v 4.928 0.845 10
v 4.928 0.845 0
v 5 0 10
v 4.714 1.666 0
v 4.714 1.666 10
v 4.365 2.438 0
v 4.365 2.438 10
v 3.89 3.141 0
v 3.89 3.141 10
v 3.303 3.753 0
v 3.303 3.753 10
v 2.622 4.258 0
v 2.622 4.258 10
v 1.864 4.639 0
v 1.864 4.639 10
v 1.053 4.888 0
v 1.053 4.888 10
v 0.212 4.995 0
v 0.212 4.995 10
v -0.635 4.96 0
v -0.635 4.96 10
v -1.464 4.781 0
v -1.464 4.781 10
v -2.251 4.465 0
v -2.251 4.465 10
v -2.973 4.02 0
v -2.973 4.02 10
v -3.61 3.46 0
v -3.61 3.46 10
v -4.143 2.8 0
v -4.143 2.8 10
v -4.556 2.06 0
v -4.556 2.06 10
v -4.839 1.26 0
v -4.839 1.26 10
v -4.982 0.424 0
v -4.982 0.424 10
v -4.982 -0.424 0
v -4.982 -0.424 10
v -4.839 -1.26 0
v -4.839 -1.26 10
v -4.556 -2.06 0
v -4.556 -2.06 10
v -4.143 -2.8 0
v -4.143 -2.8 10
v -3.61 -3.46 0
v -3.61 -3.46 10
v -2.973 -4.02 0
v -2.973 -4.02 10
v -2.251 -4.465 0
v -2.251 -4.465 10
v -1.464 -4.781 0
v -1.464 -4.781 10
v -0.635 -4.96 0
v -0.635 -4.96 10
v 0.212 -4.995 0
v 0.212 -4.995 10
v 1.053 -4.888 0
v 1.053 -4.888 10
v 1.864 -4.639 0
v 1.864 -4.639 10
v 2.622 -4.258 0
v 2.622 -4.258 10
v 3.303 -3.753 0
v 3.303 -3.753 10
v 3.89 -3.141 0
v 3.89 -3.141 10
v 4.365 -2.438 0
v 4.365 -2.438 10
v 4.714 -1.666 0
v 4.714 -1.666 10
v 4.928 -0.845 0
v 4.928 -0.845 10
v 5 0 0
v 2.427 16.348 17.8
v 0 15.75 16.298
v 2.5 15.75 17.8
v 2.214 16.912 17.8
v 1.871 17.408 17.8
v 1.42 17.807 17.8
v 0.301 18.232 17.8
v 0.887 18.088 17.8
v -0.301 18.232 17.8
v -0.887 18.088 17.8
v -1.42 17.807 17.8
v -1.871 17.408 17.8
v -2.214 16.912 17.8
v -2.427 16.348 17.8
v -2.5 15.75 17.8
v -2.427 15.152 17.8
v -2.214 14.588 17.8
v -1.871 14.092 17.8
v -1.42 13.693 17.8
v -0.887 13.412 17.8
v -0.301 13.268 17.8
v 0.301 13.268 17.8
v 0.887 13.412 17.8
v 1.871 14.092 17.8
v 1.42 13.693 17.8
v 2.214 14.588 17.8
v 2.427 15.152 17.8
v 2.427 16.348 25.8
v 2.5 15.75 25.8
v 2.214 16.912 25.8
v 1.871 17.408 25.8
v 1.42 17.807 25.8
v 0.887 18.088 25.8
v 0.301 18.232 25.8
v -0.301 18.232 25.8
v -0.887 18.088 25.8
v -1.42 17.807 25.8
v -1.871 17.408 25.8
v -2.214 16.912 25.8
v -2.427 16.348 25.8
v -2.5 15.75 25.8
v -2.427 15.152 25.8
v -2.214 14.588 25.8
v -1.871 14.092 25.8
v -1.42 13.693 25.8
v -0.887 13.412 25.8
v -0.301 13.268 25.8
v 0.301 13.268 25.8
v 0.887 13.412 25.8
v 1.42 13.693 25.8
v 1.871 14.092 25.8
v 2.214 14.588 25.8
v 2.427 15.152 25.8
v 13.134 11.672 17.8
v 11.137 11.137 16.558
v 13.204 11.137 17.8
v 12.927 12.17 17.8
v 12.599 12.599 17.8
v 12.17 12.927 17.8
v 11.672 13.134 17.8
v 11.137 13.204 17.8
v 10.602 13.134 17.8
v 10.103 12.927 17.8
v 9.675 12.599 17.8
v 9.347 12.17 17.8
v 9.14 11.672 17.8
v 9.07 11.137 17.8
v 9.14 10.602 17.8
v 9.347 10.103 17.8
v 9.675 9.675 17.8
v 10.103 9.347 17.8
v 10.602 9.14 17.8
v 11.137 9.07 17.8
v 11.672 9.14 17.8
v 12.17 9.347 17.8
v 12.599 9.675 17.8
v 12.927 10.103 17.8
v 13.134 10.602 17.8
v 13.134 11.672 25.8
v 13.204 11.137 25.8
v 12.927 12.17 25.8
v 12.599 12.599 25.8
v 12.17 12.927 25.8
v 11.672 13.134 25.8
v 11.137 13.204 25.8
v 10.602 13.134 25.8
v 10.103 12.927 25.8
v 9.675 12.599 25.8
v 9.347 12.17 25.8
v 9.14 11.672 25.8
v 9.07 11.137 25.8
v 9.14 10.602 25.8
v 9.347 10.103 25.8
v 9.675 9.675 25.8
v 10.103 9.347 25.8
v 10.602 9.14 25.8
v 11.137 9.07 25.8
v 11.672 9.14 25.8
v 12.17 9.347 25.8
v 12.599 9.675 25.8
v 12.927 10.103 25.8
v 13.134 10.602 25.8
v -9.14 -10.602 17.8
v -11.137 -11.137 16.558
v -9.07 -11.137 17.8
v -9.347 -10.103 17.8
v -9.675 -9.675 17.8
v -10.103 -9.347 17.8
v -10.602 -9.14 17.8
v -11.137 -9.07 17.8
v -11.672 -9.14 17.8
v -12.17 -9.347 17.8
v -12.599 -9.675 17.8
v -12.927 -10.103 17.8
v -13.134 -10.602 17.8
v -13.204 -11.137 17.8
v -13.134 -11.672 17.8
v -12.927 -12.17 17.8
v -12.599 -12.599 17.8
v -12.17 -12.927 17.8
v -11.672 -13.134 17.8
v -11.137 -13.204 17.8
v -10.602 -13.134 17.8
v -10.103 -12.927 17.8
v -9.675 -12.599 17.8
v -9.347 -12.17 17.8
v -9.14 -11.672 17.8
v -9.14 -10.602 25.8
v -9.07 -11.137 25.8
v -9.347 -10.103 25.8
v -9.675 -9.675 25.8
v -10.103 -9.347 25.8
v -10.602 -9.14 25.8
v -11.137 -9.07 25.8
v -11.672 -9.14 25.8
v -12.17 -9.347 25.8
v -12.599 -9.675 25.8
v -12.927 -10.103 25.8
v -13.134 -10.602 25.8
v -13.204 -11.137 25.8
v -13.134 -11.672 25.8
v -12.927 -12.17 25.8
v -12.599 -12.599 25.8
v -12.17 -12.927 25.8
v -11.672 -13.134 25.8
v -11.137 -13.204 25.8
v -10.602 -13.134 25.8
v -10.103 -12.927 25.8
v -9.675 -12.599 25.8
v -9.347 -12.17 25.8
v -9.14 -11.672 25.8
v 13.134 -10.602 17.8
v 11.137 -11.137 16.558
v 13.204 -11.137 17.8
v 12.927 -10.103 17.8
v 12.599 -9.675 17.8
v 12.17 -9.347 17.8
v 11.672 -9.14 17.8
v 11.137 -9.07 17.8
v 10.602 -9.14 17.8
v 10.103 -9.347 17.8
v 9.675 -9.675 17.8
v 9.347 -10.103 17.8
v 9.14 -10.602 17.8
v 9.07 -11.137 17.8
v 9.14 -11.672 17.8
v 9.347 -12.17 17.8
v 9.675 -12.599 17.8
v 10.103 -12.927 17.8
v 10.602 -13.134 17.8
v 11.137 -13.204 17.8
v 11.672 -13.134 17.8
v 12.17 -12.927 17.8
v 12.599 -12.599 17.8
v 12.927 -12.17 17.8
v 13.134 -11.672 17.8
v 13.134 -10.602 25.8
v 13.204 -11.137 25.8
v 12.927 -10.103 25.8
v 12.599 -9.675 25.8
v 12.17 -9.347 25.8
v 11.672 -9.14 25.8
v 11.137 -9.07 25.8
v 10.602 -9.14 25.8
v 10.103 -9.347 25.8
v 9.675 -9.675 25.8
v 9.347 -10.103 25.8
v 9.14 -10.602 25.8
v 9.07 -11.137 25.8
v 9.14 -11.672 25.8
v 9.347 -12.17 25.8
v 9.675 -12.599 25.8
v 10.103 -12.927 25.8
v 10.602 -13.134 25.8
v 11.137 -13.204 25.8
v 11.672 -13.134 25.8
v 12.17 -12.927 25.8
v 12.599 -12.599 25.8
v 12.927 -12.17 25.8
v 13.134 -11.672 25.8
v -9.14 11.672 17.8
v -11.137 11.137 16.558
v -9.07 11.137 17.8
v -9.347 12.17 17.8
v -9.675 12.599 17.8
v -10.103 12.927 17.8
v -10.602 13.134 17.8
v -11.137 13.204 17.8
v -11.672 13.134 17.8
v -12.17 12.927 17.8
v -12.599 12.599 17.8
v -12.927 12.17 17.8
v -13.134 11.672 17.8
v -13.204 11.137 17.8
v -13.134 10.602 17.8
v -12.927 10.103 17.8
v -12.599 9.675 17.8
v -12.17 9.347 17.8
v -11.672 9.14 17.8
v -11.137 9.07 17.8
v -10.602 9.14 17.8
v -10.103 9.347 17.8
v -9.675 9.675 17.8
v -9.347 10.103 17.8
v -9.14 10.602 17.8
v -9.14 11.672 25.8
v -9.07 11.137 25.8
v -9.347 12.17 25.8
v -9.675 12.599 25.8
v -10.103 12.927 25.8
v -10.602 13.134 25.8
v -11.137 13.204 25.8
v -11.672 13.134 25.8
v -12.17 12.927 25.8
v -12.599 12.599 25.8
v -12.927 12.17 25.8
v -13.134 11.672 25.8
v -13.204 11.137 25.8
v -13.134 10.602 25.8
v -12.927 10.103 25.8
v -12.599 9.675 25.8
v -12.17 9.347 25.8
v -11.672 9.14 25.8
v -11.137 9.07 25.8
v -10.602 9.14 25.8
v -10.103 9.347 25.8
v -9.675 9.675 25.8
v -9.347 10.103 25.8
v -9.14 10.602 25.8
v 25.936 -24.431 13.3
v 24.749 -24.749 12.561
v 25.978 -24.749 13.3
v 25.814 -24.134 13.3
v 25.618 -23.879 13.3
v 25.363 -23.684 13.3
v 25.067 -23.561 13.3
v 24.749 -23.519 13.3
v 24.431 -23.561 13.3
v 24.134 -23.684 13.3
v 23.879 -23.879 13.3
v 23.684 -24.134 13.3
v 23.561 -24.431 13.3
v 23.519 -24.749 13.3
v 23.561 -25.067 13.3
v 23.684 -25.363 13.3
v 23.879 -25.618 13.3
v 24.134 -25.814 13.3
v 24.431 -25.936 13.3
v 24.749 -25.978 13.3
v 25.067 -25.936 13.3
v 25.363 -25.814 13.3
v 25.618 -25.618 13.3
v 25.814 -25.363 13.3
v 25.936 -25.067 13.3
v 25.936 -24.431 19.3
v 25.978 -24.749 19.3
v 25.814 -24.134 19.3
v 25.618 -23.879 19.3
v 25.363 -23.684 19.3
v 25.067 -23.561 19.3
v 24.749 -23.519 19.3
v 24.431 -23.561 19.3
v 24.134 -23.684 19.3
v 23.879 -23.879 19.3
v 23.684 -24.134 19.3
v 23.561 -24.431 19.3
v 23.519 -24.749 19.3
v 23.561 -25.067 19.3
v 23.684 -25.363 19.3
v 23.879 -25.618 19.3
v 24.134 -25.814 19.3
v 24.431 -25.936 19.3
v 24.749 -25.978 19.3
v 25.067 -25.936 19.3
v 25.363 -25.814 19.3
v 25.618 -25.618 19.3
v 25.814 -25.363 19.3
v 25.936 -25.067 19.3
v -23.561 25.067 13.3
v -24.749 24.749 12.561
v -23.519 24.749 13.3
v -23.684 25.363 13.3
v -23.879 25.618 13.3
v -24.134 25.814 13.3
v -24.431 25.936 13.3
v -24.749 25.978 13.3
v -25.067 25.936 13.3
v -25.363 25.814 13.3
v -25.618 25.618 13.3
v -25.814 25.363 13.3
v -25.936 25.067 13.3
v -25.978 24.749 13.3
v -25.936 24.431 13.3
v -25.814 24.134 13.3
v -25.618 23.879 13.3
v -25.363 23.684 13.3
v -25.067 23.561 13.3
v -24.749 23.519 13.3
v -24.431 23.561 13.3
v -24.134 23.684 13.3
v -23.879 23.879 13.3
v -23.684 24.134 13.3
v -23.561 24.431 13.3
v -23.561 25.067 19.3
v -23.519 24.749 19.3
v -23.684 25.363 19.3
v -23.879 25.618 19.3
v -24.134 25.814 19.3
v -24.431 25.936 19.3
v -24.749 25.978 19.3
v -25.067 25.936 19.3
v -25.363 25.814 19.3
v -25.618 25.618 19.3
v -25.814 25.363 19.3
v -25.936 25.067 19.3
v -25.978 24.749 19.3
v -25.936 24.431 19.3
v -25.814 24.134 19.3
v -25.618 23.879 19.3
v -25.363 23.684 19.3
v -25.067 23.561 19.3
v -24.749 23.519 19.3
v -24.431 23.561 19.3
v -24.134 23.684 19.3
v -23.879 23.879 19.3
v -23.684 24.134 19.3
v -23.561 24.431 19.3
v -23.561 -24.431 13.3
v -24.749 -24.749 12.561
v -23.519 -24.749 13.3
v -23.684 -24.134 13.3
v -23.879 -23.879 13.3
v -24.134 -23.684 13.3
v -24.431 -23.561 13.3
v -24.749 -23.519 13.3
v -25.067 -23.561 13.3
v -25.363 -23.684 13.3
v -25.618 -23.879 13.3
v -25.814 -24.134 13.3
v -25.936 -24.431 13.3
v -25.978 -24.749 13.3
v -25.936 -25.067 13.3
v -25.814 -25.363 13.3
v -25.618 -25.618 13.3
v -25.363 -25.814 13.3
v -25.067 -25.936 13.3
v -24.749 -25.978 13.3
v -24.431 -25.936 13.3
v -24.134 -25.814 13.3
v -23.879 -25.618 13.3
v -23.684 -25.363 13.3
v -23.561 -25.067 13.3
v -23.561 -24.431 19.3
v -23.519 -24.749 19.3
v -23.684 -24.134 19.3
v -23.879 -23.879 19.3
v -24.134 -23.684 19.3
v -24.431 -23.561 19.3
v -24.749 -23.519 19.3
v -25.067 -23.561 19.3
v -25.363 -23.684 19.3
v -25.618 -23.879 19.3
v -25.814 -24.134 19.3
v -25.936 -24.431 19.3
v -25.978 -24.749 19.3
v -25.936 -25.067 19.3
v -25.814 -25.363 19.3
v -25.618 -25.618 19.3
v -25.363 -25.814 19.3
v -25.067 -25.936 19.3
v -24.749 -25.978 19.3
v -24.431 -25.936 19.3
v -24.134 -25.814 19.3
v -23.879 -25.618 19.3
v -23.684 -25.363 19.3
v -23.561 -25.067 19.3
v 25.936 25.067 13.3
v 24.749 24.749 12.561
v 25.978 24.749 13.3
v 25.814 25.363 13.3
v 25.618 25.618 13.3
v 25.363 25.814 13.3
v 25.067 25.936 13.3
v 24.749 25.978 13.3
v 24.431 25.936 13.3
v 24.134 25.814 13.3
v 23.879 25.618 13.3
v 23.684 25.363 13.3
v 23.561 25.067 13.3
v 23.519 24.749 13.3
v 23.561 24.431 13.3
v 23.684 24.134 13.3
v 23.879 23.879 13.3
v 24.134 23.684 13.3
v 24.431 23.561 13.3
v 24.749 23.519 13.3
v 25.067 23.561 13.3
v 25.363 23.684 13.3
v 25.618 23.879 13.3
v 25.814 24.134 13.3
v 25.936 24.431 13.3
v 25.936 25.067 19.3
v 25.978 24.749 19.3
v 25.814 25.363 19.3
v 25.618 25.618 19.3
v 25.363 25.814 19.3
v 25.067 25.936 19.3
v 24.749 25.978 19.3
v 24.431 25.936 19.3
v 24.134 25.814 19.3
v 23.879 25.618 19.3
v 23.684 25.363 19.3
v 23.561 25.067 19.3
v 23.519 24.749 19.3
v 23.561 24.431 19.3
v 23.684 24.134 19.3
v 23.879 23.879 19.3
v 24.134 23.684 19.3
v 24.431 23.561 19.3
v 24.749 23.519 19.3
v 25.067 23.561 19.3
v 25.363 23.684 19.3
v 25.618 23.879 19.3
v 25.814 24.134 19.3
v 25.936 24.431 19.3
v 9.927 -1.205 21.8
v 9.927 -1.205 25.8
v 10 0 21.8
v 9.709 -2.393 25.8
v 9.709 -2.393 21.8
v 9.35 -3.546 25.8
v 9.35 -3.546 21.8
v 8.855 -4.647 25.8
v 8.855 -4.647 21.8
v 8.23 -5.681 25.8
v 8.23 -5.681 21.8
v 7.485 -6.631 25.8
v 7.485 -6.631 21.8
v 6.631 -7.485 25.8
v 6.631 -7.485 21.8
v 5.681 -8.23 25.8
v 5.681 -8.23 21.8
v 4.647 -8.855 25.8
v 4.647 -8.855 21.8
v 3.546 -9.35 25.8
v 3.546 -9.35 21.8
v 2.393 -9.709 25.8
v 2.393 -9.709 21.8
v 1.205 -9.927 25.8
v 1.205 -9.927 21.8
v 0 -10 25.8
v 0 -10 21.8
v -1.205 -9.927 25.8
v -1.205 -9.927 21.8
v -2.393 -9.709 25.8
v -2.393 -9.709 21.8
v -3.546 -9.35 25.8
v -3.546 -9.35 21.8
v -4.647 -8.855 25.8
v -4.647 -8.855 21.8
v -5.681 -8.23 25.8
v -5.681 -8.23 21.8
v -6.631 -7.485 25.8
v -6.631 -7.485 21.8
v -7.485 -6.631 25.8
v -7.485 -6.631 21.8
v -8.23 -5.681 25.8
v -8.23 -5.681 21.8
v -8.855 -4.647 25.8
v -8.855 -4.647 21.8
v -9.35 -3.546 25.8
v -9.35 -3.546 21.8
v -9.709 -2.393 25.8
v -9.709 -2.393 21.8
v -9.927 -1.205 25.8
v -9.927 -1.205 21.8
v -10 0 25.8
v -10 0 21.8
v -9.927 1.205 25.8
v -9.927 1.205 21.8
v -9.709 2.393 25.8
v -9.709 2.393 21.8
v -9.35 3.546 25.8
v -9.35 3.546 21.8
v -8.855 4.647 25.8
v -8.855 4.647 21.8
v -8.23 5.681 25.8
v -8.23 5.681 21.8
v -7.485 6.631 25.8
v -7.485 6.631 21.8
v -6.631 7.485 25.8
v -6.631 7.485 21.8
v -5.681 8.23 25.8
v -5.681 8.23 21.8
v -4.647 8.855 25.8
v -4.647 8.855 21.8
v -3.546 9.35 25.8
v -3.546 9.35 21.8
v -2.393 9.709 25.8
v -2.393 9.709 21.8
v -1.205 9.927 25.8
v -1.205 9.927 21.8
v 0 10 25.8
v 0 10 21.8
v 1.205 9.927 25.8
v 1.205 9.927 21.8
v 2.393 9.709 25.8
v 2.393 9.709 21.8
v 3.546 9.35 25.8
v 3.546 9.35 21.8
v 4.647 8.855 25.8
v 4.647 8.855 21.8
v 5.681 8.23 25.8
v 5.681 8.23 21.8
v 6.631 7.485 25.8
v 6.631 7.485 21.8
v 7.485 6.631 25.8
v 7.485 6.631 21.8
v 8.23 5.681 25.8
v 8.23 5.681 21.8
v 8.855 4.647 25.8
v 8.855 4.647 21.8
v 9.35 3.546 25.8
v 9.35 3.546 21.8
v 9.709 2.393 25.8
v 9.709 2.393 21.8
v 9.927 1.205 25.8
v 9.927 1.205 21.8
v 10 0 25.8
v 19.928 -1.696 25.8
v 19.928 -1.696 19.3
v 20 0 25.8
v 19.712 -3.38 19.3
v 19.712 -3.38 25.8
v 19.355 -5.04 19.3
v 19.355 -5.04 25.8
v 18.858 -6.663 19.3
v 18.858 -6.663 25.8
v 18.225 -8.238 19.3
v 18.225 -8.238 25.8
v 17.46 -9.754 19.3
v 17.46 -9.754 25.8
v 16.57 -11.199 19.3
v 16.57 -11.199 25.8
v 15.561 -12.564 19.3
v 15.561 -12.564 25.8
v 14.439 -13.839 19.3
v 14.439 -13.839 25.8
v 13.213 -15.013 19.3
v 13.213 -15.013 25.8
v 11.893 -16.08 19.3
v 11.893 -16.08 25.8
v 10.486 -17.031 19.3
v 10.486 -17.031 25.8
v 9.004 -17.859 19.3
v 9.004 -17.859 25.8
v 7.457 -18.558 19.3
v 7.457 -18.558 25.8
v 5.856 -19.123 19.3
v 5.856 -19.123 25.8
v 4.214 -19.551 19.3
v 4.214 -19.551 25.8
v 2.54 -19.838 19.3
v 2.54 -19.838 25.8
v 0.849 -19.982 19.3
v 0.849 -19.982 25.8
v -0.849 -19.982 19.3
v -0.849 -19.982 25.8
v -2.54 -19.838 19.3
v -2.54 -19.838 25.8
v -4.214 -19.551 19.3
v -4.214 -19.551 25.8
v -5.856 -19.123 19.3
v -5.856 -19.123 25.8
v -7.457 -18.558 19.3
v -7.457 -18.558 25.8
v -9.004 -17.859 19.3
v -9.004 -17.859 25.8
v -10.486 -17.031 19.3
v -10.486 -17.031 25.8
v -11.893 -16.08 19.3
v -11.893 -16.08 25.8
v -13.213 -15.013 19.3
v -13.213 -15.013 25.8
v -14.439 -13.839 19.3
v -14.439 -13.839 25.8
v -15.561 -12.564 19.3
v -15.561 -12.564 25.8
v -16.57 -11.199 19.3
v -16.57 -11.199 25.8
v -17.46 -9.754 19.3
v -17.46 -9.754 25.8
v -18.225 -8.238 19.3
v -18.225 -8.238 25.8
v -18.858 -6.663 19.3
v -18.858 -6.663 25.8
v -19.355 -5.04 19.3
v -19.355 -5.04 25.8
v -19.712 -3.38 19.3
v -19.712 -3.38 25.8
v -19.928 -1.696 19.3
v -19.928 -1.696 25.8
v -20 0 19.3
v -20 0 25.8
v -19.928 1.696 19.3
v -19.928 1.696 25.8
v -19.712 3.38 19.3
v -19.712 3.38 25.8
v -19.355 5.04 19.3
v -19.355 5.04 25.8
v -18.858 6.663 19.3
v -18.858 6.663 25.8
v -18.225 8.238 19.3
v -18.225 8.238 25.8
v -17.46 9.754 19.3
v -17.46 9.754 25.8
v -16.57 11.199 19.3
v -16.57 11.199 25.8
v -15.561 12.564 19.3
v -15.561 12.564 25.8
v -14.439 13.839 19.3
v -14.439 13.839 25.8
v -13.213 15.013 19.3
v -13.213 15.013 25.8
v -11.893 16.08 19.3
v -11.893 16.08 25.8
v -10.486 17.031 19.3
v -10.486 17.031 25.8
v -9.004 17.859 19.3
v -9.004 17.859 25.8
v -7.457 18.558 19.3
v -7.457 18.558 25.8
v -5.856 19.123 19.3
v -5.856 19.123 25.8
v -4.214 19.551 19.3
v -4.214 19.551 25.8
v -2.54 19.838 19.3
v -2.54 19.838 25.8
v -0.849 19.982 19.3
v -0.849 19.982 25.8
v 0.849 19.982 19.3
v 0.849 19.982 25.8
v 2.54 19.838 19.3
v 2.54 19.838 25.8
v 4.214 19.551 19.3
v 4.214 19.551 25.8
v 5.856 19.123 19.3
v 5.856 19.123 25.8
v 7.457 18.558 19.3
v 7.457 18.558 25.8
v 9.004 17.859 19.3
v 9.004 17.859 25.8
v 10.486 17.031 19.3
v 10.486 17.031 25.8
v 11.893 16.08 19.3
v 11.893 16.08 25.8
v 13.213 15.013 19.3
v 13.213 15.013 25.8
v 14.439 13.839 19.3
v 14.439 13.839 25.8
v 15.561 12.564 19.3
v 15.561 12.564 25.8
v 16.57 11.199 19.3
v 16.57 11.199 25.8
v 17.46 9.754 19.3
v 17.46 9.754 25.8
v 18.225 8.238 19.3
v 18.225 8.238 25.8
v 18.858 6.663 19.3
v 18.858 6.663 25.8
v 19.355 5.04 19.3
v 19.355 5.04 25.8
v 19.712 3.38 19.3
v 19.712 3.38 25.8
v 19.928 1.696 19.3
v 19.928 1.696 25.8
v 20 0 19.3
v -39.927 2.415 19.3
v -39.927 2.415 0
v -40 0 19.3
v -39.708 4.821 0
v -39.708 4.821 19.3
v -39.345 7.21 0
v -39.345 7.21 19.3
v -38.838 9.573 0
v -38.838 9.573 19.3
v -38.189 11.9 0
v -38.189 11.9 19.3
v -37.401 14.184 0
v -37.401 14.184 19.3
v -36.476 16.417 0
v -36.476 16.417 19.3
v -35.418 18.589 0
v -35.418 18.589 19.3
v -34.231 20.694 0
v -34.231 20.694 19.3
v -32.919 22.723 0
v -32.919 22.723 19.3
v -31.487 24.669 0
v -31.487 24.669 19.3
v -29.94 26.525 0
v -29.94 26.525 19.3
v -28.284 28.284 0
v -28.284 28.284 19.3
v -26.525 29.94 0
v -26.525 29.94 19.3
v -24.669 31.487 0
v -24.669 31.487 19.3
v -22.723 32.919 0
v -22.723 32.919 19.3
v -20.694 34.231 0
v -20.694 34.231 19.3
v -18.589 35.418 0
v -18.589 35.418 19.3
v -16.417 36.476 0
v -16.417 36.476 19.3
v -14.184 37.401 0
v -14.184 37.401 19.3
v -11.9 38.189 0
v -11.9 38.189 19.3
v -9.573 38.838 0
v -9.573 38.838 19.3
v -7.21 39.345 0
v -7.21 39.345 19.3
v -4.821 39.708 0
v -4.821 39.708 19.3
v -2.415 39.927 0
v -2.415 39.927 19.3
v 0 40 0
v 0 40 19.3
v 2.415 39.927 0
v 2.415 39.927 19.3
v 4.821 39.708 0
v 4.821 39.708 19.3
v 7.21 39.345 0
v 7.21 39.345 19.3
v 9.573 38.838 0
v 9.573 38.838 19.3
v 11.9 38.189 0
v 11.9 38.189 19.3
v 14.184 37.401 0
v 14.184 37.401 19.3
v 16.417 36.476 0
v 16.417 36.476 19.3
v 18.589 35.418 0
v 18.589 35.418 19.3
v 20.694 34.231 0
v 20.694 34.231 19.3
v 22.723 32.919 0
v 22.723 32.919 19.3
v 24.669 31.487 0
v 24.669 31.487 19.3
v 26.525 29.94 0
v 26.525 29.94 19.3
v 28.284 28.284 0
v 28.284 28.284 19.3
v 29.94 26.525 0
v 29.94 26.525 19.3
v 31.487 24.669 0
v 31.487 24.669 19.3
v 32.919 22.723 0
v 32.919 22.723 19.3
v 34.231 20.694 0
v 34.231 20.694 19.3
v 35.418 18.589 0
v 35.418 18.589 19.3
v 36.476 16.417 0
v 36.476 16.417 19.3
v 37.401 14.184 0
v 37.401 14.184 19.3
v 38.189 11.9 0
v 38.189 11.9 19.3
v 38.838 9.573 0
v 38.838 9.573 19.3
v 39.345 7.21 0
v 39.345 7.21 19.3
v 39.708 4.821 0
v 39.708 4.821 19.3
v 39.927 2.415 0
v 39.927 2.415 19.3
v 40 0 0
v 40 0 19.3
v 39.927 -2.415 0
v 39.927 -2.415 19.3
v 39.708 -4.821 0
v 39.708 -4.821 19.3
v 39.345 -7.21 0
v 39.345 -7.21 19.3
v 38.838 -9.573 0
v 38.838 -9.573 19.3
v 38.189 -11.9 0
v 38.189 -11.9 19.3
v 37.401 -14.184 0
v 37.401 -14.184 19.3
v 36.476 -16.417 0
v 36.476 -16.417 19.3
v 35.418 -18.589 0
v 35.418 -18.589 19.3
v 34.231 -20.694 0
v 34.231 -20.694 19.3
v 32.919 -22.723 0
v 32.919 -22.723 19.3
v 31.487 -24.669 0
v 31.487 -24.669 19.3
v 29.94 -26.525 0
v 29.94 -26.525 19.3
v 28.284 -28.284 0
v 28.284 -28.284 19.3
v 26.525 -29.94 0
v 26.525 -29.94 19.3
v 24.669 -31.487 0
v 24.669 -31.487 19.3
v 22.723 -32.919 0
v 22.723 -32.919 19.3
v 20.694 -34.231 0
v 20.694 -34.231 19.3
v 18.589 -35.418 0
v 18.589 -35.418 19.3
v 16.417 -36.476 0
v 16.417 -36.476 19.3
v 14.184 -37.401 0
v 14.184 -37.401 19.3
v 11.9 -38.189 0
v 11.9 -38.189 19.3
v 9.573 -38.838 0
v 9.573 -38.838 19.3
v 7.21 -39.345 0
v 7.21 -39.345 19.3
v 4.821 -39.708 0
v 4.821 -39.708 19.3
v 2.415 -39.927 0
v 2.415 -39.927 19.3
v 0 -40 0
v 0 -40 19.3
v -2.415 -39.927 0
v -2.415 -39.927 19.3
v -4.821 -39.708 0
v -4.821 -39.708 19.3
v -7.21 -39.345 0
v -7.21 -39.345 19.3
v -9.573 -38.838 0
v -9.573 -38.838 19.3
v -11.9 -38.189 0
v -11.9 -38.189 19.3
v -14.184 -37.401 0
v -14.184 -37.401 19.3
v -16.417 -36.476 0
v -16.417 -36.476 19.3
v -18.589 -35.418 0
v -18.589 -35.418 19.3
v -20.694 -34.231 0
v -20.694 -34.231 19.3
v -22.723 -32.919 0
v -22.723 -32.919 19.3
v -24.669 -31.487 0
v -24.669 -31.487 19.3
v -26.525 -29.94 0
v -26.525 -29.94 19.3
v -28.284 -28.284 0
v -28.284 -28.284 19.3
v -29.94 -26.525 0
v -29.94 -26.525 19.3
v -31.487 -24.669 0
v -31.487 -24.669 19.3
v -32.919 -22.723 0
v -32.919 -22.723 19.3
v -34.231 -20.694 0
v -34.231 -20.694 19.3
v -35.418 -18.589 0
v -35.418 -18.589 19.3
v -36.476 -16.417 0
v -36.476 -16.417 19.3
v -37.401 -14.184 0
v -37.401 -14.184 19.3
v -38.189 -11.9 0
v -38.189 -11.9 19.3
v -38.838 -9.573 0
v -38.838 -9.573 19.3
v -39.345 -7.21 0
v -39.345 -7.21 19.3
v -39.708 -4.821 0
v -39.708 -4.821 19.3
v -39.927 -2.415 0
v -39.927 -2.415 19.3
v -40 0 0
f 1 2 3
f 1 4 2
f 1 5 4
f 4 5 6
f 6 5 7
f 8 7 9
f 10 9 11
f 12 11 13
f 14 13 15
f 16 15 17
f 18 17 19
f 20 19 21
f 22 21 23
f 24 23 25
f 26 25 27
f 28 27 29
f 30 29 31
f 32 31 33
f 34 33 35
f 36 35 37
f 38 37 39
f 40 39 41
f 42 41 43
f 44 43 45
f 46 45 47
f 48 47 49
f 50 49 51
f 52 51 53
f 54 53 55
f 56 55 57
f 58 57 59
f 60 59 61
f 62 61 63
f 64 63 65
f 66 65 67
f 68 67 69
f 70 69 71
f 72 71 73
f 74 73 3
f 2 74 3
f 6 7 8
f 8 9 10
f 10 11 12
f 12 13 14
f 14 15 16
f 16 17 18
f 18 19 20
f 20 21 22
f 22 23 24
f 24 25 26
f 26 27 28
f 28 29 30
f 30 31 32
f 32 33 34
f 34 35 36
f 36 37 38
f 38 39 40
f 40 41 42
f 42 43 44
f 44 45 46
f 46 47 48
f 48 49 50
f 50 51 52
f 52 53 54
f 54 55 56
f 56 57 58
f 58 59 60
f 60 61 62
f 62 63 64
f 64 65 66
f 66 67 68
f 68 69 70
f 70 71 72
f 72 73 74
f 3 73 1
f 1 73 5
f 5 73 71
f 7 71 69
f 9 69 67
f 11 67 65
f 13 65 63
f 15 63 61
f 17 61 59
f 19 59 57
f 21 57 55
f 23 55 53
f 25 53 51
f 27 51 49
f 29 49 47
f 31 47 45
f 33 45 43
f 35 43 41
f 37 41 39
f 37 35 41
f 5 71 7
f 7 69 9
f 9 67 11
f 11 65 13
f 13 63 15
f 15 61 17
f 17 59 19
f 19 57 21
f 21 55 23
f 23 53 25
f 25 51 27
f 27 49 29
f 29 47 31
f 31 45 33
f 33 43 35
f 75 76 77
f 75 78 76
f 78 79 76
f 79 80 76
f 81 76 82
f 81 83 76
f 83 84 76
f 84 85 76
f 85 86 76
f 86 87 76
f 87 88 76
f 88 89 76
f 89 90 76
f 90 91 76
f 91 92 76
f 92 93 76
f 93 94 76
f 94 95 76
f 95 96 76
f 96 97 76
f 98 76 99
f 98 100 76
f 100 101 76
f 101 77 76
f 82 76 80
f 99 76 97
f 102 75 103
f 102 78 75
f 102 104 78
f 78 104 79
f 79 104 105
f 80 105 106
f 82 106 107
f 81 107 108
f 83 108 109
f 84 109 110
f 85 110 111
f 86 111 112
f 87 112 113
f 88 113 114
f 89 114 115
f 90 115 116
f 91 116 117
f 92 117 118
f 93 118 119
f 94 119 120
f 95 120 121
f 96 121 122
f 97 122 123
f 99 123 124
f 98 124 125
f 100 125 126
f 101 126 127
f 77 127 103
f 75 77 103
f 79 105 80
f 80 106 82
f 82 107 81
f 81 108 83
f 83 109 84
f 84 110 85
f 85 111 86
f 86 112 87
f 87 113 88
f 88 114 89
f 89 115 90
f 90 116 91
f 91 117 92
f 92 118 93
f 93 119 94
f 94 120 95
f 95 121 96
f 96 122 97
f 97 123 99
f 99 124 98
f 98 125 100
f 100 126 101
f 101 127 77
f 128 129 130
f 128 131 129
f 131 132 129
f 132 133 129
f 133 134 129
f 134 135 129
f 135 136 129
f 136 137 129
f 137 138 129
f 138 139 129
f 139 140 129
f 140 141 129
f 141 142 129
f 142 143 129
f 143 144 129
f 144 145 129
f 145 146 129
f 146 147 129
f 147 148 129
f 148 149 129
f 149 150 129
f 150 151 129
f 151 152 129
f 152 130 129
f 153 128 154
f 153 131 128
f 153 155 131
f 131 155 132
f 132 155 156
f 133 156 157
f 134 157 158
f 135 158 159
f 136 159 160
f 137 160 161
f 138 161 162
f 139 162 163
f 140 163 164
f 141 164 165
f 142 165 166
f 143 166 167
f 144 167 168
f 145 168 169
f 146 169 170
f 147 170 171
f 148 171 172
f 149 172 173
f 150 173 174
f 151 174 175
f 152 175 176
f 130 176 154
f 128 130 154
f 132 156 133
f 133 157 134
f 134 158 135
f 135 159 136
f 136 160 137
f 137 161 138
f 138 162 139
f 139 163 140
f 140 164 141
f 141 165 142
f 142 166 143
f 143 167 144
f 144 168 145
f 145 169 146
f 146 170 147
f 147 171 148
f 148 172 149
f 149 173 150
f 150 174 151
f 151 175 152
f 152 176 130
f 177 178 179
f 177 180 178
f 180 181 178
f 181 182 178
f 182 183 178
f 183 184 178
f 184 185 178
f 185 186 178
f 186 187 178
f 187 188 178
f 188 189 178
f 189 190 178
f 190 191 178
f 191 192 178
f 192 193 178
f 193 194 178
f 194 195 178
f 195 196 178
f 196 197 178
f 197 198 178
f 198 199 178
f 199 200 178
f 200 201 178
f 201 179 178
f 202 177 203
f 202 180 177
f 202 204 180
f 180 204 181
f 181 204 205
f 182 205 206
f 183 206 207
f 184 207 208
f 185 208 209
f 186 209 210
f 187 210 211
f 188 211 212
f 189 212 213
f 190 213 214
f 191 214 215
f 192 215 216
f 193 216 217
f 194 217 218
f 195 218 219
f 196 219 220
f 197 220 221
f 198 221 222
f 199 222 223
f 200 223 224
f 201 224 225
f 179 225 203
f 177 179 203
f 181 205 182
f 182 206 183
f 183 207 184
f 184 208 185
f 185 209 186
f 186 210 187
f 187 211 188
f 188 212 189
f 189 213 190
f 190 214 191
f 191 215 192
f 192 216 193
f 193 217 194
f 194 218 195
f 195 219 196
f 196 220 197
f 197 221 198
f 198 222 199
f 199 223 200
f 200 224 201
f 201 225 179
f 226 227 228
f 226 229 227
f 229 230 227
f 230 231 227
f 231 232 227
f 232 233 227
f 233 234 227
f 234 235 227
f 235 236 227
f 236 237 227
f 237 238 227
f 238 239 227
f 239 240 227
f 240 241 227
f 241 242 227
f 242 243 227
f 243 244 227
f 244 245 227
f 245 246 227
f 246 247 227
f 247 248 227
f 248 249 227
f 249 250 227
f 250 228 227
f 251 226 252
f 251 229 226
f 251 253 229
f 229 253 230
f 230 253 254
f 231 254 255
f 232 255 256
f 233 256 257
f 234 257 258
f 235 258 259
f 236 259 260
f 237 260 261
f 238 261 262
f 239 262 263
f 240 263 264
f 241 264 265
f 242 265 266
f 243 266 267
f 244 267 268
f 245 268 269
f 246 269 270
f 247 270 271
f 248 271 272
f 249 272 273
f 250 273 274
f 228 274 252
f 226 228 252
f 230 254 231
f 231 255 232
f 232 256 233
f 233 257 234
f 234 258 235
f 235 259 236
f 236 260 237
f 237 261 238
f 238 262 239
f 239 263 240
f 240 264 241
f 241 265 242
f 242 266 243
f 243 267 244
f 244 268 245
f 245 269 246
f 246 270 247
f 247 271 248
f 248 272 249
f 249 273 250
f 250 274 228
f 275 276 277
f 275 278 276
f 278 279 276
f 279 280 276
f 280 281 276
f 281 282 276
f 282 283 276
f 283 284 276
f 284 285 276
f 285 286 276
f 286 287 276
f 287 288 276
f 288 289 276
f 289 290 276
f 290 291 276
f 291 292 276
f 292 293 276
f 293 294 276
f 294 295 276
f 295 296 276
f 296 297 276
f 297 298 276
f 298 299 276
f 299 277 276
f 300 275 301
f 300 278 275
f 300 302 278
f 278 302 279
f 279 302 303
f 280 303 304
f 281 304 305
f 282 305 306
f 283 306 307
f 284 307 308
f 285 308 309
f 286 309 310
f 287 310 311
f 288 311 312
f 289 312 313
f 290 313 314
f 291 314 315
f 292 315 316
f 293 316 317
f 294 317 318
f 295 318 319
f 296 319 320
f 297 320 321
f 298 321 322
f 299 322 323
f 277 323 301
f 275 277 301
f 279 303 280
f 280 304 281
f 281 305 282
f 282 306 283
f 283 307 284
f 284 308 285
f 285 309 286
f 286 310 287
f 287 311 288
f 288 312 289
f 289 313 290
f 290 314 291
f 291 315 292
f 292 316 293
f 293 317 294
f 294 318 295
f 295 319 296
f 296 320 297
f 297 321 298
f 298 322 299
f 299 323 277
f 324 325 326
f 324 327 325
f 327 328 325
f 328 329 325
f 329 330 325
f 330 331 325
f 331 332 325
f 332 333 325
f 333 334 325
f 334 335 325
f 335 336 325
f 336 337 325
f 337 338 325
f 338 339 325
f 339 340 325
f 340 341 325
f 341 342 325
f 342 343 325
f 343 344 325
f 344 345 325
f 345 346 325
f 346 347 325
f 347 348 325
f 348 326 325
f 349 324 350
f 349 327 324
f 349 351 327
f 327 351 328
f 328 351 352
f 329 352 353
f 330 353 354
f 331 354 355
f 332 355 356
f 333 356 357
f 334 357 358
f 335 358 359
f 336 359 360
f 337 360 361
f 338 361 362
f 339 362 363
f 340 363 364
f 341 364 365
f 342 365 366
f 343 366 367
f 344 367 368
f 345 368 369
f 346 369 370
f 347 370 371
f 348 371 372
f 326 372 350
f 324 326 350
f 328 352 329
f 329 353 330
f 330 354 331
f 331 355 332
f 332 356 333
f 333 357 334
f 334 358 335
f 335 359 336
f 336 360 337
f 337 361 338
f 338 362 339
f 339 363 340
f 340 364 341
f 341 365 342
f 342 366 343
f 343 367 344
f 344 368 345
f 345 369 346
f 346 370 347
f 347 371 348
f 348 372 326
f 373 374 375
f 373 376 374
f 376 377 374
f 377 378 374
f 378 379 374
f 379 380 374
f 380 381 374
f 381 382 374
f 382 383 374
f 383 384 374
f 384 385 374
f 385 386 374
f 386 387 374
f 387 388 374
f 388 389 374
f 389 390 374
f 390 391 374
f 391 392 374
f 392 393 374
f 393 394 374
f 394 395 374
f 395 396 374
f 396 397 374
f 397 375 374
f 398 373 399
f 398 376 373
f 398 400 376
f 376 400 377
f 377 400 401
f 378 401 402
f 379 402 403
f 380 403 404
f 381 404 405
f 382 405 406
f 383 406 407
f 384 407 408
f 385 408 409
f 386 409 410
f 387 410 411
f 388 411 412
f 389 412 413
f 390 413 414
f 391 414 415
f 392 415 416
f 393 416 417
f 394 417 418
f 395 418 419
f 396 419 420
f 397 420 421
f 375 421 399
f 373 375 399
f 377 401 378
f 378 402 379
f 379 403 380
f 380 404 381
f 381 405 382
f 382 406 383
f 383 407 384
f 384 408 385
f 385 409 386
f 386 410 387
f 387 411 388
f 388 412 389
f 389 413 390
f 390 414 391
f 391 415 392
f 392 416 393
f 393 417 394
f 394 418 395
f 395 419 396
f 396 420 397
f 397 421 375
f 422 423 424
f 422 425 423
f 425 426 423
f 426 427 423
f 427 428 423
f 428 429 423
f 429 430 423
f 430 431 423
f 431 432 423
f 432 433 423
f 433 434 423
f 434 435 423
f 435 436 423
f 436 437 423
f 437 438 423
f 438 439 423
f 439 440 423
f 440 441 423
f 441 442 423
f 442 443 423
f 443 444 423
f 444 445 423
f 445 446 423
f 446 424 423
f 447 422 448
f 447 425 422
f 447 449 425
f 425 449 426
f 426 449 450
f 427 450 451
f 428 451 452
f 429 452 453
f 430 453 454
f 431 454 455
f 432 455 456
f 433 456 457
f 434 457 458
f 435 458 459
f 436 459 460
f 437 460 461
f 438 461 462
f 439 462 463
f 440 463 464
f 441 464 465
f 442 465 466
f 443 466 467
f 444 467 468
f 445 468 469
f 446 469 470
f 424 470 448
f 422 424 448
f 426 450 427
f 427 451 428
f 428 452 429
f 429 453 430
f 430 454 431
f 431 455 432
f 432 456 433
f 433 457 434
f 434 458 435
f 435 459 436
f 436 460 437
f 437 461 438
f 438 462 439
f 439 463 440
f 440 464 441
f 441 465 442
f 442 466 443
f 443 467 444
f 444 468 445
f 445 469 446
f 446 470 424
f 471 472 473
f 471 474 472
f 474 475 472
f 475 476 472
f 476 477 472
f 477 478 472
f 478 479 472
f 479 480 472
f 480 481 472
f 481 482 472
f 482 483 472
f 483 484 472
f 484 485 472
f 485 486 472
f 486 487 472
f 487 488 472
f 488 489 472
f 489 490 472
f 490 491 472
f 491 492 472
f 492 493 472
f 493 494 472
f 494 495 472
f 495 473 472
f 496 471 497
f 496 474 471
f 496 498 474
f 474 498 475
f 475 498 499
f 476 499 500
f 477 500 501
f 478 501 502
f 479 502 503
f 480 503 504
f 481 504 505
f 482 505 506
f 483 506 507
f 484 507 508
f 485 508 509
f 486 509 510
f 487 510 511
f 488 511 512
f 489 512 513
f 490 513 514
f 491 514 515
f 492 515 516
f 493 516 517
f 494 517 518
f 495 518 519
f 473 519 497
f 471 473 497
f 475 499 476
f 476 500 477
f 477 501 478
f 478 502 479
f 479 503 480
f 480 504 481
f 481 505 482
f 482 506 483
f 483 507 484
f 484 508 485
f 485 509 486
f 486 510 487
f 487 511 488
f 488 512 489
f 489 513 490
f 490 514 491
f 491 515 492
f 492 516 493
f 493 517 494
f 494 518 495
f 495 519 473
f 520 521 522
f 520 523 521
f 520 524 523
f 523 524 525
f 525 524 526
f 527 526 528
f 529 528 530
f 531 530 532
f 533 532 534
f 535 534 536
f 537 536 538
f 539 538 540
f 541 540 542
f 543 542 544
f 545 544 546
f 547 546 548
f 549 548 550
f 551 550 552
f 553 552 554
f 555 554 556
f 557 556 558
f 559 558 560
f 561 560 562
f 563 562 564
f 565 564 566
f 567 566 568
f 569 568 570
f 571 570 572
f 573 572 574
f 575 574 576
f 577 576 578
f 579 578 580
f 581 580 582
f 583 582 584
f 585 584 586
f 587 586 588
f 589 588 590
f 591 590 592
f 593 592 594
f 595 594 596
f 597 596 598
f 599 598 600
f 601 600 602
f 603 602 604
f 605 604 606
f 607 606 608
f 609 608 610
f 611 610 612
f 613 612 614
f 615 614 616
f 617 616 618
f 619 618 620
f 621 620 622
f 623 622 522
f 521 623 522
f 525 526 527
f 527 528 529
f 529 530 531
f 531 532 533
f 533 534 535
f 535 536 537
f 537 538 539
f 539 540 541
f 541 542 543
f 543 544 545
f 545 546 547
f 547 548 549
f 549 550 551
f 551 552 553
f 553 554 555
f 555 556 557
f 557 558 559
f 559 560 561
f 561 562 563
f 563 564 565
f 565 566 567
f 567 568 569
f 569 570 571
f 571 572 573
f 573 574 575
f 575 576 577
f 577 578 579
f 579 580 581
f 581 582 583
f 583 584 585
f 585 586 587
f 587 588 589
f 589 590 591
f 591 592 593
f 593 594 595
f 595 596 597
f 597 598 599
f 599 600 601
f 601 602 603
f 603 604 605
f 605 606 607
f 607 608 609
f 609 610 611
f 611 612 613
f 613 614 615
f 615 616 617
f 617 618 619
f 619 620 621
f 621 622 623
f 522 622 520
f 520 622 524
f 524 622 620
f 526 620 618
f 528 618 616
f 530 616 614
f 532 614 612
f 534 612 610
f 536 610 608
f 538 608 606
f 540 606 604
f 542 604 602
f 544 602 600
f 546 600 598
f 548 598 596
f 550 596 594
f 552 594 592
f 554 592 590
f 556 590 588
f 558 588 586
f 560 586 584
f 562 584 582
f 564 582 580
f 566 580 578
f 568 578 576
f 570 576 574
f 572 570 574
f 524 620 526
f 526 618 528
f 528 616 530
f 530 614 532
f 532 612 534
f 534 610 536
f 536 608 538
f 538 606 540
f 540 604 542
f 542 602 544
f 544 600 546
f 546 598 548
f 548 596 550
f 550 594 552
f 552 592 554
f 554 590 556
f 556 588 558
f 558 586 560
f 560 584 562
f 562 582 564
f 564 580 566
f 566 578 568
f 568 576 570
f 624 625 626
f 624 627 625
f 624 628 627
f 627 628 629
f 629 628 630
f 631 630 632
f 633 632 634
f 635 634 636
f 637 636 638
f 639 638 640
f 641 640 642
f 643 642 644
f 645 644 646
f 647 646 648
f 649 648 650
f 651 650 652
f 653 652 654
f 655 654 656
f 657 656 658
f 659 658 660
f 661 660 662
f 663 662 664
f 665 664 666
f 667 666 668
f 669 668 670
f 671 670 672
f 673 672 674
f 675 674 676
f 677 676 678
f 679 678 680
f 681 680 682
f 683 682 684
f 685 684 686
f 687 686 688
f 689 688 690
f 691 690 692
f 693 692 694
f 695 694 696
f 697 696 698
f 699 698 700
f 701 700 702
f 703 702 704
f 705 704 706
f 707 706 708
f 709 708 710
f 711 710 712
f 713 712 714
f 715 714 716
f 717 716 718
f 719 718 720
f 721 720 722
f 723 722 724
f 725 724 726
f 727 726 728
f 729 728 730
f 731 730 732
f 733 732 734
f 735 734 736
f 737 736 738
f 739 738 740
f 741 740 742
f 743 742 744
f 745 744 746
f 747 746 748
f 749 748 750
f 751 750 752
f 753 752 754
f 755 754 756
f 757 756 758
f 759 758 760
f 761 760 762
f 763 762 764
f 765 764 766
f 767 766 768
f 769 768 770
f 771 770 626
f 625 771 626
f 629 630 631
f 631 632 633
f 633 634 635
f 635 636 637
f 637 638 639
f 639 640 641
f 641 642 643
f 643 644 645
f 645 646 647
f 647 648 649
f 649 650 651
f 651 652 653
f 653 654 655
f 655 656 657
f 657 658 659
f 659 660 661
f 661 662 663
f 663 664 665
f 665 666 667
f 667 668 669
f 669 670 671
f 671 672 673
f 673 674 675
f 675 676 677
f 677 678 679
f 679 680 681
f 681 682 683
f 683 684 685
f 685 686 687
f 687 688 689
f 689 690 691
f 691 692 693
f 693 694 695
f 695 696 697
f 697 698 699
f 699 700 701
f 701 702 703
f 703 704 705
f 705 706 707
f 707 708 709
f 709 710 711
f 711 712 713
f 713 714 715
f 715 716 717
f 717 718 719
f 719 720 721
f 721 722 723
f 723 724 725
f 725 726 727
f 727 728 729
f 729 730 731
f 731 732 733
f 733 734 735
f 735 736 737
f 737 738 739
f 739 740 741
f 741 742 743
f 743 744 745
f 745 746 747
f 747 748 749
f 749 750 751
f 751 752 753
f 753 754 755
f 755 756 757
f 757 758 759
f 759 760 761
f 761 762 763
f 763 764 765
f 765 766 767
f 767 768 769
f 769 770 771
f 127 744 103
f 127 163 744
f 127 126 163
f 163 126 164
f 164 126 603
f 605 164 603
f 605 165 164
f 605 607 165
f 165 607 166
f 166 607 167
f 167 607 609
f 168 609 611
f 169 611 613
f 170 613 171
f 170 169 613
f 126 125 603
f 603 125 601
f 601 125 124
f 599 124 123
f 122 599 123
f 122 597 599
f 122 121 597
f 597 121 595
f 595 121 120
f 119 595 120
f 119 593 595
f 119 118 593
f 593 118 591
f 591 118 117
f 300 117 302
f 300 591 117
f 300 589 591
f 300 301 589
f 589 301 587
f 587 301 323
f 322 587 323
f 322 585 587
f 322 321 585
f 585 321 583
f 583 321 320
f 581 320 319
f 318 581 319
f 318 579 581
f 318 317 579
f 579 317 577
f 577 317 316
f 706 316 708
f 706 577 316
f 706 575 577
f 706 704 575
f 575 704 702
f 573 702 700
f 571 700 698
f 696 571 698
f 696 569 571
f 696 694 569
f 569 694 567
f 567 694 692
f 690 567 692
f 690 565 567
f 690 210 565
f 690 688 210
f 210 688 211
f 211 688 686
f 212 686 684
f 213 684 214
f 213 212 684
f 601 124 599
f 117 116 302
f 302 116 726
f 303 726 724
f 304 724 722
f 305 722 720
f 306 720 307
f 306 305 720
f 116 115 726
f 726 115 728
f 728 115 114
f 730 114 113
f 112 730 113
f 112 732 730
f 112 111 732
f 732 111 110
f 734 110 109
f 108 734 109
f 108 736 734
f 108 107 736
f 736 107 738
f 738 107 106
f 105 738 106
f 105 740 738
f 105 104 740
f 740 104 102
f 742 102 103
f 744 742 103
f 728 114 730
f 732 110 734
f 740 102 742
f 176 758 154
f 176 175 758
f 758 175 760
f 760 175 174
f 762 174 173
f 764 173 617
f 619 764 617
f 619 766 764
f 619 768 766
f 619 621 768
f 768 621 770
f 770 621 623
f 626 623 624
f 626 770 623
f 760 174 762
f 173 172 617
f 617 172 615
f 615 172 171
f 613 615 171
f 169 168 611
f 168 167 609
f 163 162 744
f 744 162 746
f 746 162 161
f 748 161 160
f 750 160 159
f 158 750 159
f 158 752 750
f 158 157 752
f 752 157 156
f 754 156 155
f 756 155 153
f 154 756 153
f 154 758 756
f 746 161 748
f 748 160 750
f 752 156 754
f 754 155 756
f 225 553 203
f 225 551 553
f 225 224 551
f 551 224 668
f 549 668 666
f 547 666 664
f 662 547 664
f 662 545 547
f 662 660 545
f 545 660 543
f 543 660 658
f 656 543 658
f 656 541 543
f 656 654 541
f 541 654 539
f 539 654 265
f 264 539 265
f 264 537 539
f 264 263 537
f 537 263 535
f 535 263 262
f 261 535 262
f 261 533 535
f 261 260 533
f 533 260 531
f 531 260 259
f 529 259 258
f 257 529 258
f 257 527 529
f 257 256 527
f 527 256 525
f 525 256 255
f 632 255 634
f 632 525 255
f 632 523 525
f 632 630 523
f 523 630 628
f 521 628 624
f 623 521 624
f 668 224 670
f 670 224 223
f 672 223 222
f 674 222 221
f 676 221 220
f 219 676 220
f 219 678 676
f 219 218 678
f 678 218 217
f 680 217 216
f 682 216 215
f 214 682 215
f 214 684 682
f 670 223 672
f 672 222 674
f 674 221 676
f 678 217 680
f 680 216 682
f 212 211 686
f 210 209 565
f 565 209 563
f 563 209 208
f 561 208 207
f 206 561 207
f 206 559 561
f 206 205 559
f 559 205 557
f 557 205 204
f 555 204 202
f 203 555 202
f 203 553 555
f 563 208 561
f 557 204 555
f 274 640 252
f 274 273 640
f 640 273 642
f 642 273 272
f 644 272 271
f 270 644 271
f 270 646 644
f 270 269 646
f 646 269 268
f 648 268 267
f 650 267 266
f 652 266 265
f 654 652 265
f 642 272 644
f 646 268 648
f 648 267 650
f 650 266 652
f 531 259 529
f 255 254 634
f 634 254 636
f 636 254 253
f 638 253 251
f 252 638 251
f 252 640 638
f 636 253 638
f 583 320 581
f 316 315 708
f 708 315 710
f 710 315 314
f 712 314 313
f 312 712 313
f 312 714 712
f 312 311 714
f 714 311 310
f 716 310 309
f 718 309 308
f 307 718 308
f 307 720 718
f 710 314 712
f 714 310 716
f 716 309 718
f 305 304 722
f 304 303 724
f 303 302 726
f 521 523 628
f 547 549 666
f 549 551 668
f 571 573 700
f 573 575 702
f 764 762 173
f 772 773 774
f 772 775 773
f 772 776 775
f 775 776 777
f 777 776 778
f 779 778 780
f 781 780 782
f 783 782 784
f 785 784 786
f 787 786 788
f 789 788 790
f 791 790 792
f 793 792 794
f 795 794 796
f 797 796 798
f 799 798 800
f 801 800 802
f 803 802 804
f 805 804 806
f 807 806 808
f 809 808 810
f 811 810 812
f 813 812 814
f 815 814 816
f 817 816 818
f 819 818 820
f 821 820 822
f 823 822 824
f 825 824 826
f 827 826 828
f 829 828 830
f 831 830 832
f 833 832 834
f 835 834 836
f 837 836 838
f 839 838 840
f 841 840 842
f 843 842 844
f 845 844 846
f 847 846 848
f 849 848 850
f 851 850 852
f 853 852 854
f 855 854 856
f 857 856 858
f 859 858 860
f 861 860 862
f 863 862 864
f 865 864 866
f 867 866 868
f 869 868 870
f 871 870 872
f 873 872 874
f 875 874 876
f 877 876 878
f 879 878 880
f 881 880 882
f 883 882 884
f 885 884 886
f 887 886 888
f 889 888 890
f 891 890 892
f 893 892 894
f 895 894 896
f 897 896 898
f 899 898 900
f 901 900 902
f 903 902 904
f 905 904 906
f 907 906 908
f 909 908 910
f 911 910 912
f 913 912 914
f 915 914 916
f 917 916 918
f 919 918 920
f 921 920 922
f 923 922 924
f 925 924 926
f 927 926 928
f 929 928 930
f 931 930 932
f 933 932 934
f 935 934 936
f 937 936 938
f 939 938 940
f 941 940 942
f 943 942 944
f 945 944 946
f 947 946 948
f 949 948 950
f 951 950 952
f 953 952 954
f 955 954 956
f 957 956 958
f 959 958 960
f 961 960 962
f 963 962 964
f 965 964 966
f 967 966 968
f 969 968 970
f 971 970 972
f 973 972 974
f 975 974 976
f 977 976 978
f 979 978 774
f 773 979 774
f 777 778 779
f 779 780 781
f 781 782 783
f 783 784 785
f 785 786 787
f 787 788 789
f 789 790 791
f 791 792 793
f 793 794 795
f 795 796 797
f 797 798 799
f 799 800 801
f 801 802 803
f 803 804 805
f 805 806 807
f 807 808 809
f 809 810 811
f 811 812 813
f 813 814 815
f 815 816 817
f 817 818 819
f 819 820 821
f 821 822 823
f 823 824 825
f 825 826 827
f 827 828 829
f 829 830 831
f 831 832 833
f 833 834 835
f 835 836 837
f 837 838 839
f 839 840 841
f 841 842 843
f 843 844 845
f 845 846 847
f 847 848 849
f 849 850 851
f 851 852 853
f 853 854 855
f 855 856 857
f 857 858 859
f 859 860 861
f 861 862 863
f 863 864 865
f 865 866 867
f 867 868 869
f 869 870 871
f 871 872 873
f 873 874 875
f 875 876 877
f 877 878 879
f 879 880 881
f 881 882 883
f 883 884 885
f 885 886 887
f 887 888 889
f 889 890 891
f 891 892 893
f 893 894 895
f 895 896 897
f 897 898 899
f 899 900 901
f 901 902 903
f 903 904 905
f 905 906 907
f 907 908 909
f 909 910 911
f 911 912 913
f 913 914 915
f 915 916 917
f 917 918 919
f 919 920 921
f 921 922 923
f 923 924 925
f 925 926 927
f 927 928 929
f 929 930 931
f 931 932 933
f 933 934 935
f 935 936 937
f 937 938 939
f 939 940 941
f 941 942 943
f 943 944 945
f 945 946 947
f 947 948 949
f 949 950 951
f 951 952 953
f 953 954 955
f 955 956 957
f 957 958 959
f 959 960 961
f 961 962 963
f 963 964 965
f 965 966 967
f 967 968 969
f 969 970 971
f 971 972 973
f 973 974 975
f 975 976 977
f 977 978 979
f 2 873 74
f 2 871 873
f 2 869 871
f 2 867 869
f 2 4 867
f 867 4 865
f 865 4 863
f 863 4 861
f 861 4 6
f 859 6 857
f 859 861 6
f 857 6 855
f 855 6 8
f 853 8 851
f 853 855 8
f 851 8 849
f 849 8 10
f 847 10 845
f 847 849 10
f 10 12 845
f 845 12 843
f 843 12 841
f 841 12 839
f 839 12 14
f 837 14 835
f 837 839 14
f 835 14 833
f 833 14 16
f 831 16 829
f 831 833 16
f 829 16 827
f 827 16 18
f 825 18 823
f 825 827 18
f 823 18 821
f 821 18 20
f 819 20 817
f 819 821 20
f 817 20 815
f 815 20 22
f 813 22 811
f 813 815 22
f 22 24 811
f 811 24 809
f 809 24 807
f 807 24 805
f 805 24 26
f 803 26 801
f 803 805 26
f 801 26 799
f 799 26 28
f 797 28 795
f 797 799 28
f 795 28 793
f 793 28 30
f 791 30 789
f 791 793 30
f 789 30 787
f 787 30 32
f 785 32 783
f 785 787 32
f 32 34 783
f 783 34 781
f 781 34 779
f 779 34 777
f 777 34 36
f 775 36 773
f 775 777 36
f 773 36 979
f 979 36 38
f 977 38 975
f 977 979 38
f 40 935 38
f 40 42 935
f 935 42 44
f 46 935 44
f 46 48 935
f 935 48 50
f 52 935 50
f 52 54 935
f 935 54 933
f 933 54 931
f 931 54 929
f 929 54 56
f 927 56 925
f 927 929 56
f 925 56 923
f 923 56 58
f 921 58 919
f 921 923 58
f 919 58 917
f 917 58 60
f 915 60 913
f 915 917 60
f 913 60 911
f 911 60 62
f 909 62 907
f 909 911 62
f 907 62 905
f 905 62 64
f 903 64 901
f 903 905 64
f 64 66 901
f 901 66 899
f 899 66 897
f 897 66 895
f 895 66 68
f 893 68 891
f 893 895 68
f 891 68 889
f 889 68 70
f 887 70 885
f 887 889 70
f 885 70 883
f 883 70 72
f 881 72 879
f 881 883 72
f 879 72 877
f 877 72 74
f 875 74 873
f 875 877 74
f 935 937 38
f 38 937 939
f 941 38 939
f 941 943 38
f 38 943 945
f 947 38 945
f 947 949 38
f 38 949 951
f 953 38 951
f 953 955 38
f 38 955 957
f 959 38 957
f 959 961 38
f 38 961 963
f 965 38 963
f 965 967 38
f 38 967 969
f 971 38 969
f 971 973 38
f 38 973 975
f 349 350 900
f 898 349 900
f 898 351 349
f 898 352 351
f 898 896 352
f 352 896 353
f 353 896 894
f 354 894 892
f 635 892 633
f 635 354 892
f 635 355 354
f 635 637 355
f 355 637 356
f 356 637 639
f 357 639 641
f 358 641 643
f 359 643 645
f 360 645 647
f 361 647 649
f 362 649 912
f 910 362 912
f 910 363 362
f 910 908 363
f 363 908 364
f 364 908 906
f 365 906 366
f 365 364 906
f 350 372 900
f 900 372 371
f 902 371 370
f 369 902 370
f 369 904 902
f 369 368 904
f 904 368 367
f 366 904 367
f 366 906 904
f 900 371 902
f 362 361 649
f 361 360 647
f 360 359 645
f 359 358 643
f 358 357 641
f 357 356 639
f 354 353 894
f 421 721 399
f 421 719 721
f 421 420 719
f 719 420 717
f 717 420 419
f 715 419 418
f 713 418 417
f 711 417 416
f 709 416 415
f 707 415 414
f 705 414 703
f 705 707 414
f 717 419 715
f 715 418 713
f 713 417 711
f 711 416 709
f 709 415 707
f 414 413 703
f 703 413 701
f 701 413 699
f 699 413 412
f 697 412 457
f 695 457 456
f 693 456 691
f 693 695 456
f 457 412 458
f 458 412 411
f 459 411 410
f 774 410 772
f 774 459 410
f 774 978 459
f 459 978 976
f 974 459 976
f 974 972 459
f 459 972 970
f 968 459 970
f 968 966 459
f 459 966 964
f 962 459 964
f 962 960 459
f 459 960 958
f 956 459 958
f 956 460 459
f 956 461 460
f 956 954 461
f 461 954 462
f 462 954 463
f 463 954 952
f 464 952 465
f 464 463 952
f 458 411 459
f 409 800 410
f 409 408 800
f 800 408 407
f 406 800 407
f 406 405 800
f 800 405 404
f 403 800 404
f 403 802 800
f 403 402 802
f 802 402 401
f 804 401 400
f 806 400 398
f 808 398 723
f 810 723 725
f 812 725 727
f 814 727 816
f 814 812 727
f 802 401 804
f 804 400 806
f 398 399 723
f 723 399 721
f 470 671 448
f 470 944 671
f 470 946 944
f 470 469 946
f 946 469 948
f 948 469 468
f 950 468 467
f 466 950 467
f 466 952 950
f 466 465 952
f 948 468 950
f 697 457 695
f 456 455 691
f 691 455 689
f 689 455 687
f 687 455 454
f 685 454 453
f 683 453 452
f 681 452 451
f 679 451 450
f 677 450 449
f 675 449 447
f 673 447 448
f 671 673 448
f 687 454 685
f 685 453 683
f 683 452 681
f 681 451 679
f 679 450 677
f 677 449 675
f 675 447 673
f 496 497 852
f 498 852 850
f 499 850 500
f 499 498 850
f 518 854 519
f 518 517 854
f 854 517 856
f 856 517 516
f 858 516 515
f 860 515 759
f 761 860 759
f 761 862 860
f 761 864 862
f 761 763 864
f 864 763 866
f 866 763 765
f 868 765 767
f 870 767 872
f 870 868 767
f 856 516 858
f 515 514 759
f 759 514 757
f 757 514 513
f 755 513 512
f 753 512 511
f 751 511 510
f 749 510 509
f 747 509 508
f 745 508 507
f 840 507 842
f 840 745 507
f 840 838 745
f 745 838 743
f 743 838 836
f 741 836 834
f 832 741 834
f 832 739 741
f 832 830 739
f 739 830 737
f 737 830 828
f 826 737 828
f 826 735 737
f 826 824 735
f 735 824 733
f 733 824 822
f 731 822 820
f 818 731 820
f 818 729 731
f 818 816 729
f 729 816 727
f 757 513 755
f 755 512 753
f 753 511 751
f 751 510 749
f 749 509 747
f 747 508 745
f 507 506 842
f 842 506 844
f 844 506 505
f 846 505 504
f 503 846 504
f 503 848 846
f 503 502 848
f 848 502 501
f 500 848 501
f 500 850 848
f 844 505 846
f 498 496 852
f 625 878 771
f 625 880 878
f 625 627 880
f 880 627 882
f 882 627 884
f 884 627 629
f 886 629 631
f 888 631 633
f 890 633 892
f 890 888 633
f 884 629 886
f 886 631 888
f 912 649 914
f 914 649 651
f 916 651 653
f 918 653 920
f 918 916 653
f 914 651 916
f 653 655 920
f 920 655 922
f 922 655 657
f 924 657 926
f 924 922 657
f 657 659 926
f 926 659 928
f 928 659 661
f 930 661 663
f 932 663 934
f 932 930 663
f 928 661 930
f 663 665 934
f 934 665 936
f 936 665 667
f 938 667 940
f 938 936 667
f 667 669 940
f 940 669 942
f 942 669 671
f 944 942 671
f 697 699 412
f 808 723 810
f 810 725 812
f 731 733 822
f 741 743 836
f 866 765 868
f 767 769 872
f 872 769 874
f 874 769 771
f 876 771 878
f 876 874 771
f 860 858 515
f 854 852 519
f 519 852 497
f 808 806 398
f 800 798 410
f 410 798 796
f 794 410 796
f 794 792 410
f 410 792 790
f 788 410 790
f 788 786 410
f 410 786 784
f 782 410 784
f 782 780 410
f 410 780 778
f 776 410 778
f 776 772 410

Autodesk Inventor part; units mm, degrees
ref_plane "YZ Plane" through (0, 0, 0) normal (1, 0, 0) x (0, 1, 0)
ref_plane "XZ Plane" through (0, 0, 0) normal (0, 1, 0) x (-1, 0, 0)
ref_plane "XY Plane" through (0, 0, 0) normal (0, 0, 1) x (1, 0, 0)
sketch "スケッチ1" plane through (0, 0, 0) normal (0, 1, 0) x (-1, 0, 0)
  circle A0 centre (0, 0) radius 40
  dimension "d0" = 80
extrude "押し出し1" add sketch "スケッチ1" along normal blind 19.3
sketch "スケッチ3" plane through (0, 19.3, 0) normal (0, 1, 0) x (1, 0, 0)
  circle A0 centre (0, 0) radius 20
  dimension "d3" = 40
extrude "押し出し2" add sketch "スケッチ3" along normal blind 6.5
sketch "スケッチ4" plane through (0, 25.8, 0) normal (0, 1, 0) x (1, 0, 0)
  circle A0 centre (0, 0) radius 10
  dimension "d6" = 20
extrude "押し出し3" cut sketch "スケッチ4" against normal blind 4
sketch "スケッチ5" plane through (0, 19.3, 0) normal (0, 1, 0) x (1, 0, 0)
  point P0 (0, 0)
  point P1 (0, 0)
  point P2 (-24.7487, -24.7487)
  point P3 (24.7487, -24.7487)
  point P4 (24.7487, 24.7487)
  point P5 (-24.7487, 24.7487)
  dimension "d9" = 35
  dimension "d12" = 360
hole "穴1" at (-24.7487, 19.3, -24.7487) at (-24.7487, 19.3, 24.7487) at (24.7487, 19.3, 24.7487) at (24.7487, 19.3, -24.7487) direction (0, -1, 0) diameter 2.459 depth 6 tip angle 118 thread size "M3x0.5" class "6H" standard "ANSI Metric M Profile"
sketch "スケッチ6" plane through (0, 25.8, 0) normal (0, 1, 0) x (1, 0, 0)
  point P0 (0, 0)
  point P1 (-11.1369, -11.1369)
  point P2 (11.1369, -11.1369)
  point P3 (11.1369, 11.1369)
  point P4 (-11.1369, 11.1369)
  dimension "d21" = 15.75
  dimension "d24" = 360
hole "穴2" at (-11.1369, 25.8, 11.1369) at (11.1369, 25.8, 11.1369) at (11.1369, 25.8, -11.1369) at (-11.1369, 25.8, -11.1369) direction (0, -1, 0) diameter 4.134 depth 8 tip angle 118 thread size "M5x0.8" class "6H" standard "ANSI Metric M Profile"
sketch "スケッチ7" plane through (0, 25.8, 0) normal (0, 1, 0) x (1, 0, 0)
  point P0 (0, 0)
  point P1 (0, 15.75)
  dimension "d33" = 15.75
hole "穴3" at (0, 25.8, -15.75) direction (0, -1, 0) diameter 5 depth 8 tip angle 118
sketch "スケッチ8" plane through (0, 0, 0) normal (0, -1, 0) x (1, 0, 0)
  circle A0 centre (0, 0) radius 5
  dimension "d41" = 10
extrude "押し出し4" cut sketch "スケッチ8" against normal blind 10
move or copy body "ボディを移動2" bodies to move or copy 1 copy no rotation origin (0, 0, 0) rotation axis (1, 0, 0) rotation angle 90
properties part number "HandMountingFlange" material "PAEK 樹脂"
